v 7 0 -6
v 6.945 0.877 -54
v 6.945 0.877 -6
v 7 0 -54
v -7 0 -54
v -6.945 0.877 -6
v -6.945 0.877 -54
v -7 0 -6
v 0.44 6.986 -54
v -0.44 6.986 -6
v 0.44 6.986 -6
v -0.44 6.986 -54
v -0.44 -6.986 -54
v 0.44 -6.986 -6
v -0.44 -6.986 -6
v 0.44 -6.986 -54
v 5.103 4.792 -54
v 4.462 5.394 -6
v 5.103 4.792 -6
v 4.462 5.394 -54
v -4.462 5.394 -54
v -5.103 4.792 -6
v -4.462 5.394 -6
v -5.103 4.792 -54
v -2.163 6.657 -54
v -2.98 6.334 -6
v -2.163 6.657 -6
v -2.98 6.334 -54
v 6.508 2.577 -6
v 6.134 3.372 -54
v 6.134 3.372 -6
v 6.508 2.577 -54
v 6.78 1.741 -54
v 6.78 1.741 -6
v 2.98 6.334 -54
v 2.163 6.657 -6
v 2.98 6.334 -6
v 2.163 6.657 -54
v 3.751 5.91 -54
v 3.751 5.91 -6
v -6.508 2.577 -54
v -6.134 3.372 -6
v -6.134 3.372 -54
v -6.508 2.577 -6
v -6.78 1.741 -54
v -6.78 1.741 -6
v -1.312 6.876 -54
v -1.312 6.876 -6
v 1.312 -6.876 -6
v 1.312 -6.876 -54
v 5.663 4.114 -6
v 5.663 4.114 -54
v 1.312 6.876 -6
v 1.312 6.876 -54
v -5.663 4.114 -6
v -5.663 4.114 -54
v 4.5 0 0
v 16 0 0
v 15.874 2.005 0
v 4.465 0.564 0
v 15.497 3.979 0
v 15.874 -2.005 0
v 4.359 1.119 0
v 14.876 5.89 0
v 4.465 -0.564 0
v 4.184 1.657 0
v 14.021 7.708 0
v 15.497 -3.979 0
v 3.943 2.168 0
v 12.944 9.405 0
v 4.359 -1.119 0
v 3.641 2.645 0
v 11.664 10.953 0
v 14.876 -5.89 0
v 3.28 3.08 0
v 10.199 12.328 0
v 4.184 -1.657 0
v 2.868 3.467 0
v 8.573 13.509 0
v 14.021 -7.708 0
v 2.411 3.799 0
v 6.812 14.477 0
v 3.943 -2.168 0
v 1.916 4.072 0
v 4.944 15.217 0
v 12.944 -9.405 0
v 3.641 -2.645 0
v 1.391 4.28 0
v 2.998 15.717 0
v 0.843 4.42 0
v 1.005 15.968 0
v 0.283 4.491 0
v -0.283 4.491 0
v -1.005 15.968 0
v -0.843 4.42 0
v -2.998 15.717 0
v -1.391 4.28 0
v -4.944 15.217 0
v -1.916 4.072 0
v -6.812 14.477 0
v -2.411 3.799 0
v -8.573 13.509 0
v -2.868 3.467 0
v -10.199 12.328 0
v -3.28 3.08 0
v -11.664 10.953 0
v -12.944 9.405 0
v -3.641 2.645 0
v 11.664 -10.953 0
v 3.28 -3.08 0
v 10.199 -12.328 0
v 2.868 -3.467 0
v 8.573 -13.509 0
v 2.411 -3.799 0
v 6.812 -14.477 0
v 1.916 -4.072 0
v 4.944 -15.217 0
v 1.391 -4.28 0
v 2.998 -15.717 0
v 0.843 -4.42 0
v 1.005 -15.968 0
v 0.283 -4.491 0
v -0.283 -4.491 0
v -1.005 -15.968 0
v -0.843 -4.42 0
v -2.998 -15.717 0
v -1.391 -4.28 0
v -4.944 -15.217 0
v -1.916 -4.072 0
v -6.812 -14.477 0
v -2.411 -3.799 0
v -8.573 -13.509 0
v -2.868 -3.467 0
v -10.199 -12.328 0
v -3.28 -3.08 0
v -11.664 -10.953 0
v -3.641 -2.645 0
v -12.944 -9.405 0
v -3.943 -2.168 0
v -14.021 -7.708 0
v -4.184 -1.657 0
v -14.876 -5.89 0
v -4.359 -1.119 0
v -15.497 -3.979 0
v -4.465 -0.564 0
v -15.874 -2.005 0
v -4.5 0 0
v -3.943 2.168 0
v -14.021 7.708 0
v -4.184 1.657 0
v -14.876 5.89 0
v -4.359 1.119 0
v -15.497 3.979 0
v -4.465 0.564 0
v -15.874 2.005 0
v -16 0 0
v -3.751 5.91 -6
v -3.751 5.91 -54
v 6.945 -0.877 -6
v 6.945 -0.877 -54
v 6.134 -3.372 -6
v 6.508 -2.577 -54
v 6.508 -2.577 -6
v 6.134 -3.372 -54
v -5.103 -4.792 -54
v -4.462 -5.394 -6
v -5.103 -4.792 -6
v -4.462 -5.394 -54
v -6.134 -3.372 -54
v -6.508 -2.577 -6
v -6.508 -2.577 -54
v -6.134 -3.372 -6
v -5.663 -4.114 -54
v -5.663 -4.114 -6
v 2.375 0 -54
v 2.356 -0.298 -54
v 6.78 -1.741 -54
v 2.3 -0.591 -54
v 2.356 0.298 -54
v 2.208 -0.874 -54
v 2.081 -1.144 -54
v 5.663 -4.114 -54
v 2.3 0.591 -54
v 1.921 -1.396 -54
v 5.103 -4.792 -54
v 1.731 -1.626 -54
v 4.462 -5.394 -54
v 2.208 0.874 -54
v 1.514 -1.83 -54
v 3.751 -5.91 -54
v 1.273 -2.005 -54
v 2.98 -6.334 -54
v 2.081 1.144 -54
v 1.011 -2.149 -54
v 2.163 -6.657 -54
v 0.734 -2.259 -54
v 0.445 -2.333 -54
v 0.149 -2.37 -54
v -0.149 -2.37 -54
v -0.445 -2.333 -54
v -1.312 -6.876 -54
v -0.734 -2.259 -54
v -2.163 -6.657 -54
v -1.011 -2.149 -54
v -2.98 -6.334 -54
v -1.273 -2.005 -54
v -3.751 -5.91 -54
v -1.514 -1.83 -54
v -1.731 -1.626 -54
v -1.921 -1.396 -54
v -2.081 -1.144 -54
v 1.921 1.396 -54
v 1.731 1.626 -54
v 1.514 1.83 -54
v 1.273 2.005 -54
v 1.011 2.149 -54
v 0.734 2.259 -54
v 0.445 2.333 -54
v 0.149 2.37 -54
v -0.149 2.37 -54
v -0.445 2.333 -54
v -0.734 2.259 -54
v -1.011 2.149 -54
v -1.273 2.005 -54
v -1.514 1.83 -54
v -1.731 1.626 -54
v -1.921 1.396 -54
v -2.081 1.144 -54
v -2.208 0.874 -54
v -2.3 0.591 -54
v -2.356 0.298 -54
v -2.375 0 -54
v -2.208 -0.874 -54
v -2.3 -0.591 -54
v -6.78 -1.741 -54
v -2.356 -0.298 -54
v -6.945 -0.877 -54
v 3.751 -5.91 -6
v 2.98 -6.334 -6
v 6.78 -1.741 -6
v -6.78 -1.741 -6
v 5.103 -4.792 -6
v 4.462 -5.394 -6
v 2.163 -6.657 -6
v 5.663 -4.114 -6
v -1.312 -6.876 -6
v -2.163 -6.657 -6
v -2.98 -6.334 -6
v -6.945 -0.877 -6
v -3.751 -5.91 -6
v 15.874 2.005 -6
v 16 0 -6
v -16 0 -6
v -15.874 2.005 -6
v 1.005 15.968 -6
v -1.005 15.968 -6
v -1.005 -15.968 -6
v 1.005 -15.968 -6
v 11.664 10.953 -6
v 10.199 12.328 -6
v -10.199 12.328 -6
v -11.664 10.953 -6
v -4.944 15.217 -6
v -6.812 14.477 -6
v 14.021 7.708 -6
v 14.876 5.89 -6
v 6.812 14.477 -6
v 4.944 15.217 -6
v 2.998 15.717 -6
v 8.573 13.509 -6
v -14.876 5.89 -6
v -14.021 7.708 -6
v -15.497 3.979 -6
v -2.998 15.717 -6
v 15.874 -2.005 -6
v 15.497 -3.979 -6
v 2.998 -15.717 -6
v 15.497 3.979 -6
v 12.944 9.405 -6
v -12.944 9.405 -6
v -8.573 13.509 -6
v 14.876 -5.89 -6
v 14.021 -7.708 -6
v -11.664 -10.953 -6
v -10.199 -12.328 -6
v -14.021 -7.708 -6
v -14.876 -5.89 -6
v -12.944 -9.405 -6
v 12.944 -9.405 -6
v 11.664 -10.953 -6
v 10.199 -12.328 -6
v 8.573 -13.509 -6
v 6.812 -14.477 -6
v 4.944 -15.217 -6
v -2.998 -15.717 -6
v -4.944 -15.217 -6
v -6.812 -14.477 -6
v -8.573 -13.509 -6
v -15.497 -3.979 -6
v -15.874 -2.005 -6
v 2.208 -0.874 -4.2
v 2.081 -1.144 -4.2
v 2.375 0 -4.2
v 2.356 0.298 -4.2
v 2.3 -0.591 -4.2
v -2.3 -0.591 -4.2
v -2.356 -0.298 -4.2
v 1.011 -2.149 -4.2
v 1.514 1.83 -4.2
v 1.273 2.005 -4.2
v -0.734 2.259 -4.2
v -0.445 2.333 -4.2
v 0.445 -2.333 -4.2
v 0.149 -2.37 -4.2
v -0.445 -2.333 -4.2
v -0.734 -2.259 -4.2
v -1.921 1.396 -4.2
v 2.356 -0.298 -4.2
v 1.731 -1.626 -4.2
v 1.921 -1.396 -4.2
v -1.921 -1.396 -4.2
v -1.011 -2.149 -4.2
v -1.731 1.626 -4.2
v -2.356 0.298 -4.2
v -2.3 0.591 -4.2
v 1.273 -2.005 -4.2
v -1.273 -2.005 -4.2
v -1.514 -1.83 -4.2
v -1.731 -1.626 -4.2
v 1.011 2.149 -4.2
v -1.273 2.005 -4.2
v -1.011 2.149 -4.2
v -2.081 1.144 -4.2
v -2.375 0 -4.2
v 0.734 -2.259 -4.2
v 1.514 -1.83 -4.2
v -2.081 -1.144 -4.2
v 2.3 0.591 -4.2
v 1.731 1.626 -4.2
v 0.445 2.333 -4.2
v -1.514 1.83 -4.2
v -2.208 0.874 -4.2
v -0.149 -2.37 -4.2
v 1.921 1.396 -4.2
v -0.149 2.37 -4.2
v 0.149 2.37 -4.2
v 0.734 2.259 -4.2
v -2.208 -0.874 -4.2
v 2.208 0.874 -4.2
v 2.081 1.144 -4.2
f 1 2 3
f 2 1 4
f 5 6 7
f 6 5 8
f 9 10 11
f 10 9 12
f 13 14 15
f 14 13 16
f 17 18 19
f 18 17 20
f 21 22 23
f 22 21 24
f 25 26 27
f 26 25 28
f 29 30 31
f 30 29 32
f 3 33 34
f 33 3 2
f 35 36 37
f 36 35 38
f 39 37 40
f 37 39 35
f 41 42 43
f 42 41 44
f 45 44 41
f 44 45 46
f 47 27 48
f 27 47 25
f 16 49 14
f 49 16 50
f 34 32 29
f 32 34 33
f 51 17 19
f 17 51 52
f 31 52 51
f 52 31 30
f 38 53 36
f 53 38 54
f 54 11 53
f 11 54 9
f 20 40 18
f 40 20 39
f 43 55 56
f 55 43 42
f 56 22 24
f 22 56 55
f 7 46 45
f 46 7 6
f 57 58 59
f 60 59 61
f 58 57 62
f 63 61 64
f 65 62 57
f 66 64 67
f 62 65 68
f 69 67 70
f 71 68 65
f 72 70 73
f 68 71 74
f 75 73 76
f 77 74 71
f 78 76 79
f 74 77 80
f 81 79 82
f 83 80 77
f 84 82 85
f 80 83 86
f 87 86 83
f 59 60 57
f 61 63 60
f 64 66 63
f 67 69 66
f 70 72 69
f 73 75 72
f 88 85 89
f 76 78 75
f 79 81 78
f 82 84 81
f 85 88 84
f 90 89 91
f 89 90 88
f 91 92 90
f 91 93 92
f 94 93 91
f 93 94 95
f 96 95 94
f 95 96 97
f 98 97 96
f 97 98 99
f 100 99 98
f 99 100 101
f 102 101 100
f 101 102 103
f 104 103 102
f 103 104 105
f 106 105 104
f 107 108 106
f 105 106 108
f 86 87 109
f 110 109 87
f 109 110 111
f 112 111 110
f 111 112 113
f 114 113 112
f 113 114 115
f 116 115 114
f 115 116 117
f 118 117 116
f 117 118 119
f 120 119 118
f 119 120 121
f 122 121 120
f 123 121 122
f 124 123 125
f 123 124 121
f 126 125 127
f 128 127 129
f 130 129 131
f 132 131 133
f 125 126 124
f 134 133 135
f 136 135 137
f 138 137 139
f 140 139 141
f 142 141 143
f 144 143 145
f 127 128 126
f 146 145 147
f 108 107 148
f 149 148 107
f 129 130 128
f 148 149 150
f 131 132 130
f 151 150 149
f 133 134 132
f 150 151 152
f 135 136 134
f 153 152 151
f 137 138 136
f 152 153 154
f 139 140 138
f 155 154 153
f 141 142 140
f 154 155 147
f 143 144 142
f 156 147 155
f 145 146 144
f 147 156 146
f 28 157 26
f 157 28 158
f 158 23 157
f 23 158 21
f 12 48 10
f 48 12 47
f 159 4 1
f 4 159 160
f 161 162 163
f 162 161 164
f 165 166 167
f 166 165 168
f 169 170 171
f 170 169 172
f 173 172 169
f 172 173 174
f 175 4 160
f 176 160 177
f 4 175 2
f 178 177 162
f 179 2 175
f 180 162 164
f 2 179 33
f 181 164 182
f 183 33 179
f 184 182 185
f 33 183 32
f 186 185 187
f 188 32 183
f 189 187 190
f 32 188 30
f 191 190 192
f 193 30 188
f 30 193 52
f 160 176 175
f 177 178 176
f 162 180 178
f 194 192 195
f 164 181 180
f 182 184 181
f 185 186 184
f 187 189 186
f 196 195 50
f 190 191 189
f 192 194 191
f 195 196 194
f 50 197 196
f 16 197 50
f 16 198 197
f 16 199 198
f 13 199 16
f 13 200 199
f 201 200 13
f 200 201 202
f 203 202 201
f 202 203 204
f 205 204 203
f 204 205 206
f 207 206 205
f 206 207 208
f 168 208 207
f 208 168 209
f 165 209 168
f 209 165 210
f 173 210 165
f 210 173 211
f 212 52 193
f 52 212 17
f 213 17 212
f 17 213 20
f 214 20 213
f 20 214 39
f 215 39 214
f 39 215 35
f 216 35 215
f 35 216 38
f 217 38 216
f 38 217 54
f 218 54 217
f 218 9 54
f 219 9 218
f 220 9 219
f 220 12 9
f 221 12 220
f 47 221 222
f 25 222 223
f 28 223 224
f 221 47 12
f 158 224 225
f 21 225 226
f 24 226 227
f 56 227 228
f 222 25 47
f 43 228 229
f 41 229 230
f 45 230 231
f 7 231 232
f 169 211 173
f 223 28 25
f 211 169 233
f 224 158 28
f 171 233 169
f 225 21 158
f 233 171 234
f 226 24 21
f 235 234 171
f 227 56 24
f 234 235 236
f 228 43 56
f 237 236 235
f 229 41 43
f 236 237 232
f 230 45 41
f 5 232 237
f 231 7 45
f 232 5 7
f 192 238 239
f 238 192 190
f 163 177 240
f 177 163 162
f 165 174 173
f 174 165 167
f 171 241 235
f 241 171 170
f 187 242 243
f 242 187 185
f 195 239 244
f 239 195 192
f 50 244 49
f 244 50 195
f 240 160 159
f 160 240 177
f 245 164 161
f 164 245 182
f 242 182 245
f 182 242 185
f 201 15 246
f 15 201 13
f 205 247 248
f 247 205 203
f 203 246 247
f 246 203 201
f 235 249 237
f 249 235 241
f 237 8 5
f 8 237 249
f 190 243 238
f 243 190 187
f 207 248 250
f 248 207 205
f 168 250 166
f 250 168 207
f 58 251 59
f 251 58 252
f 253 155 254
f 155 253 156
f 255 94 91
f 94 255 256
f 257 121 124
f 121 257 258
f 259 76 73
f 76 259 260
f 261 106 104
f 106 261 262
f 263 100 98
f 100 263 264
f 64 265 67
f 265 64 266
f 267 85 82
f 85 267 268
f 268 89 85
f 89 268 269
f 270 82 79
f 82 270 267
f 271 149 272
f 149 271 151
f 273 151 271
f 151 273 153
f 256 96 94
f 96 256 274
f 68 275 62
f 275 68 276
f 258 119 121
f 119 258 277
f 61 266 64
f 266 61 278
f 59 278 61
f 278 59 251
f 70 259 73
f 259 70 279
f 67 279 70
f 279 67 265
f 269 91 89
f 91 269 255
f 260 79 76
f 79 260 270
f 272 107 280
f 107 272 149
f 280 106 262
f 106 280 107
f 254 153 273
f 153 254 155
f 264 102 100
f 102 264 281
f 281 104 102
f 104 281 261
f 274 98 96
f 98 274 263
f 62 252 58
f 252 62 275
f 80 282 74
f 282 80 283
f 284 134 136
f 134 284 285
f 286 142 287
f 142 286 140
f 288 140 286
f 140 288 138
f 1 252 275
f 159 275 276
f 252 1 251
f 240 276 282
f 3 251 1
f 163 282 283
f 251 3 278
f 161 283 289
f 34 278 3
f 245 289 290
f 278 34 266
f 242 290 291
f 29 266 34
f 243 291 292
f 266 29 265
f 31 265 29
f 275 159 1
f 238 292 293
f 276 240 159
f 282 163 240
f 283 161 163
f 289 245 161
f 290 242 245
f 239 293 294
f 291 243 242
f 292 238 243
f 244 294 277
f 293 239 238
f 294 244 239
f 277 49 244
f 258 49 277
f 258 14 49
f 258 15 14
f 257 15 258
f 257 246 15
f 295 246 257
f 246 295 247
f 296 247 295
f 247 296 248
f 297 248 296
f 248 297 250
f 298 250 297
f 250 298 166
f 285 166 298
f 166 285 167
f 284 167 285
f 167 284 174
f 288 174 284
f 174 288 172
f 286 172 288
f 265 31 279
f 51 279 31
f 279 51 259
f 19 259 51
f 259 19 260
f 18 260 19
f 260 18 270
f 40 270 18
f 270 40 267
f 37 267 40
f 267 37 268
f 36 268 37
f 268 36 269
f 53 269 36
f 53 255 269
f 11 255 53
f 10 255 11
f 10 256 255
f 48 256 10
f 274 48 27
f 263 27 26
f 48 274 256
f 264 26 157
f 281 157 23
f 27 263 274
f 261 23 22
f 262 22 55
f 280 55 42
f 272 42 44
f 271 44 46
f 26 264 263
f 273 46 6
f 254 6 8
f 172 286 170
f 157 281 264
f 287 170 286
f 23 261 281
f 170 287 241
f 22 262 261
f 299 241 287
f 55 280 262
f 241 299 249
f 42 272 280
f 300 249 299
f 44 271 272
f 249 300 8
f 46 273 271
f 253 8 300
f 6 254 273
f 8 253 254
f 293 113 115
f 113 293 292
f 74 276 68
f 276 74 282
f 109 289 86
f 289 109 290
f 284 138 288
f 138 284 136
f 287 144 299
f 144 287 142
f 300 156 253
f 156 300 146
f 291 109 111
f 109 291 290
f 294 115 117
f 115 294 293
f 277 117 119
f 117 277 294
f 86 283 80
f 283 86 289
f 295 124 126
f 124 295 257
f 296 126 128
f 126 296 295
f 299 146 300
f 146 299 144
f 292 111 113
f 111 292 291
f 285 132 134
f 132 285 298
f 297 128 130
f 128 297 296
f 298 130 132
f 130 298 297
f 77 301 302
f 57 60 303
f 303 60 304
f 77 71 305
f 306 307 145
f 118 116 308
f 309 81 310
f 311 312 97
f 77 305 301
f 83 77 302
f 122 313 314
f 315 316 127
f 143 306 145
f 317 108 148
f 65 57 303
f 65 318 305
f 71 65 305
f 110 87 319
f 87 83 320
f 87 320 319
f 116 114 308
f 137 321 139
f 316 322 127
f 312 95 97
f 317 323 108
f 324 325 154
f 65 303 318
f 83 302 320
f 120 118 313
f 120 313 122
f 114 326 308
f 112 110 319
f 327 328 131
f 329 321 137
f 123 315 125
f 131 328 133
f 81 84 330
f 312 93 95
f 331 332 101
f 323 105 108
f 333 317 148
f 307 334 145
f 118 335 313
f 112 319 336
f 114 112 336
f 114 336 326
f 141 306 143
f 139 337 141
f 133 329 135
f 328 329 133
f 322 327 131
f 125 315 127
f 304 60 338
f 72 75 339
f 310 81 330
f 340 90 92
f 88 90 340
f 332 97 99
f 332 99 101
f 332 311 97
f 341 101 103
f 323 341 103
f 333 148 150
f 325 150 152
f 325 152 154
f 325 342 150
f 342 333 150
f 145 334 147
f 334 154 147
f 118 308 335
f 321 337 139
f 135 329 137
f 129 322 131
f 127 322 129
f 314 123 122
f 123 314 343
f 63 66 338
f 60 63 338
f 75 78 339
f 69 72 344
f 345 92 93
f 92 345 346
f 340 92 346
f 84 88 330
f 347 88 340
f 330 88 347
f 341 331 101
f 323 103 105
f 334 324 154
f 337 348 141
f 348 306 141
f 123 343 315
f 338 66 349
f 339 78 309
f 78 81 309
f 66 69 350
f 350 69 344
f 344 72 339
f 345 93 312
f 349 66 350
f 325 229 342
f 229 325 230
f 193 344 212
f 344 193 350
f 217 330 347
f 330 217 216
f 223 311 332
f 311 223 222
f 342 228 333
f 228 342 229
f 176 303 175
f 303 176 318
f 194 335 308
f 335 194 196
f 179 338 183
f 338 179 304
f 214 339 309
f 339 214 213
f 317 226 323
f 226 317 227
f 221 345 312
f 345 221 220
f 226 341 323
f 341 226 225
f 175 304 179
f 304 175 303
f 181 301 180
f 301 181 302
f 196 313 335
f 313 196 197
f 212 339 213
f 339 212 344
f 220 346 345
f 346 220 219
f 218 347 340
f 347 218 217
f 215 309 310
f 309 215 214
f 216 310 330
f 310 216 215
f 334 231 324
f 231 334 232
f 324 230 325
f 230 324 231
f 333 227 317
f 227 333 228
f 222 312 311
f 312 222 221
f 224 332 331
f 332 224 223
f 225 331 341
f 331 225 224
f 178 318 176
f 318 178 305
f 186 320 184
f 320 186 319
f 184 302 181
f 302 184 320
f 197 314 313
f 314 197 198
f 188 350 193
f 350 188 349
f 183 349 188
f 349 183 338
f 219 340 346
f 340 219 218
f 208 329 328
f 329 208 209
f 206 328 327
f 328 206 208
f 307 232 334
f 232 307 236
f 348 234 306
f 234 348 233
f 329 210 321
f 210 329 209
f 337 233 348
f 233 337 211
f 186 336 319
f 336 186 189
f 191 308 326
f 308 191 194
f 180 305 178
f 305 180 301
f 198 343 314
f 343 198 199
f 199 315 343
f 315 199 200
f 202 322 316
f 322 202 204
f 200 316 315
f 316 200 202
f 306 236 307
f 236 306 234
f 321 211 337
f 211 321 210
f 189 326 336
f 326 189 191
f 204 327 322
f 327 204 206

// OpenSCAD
$fn = 50;


difference() {
	union() {
		translate(v = [0, 0, -54.0000000000]) {
			cylinder(h = 54, r = 7.0000000000);
		}
		translate(v = [0, 0, -6.0000000000]) {
			cylinder(h = 6, r = 16.0000000000);
		}
	}
	union() {
		translate(v = [0, 0, 0]) {
			rotate(a = [0, 0, 0]) {
				difference() {
					union() {
						#translate(v = [0, 0, -54.0000000000]) {
							cylinder(h = 54, r = 2.2500000000);
						}
						#translate(v = [0, 0, -4.2000000000]) {
							cylinder(h = 4.2000000000, r = 7.0000000000, r1 = 2.3750000000, r2 = 4.5000000000);
						}
						#translate(v = [0, 0, -54.0000000000]) {
							cylinder(h = 54, r = 2.3750000000);
						}
						#translate(v = [0, 0, -54.0000000000]) {
							cylinder(h = 54, r = 2.2500000000);
						}
					}
					union();
				}
			}
		}
	}
}
